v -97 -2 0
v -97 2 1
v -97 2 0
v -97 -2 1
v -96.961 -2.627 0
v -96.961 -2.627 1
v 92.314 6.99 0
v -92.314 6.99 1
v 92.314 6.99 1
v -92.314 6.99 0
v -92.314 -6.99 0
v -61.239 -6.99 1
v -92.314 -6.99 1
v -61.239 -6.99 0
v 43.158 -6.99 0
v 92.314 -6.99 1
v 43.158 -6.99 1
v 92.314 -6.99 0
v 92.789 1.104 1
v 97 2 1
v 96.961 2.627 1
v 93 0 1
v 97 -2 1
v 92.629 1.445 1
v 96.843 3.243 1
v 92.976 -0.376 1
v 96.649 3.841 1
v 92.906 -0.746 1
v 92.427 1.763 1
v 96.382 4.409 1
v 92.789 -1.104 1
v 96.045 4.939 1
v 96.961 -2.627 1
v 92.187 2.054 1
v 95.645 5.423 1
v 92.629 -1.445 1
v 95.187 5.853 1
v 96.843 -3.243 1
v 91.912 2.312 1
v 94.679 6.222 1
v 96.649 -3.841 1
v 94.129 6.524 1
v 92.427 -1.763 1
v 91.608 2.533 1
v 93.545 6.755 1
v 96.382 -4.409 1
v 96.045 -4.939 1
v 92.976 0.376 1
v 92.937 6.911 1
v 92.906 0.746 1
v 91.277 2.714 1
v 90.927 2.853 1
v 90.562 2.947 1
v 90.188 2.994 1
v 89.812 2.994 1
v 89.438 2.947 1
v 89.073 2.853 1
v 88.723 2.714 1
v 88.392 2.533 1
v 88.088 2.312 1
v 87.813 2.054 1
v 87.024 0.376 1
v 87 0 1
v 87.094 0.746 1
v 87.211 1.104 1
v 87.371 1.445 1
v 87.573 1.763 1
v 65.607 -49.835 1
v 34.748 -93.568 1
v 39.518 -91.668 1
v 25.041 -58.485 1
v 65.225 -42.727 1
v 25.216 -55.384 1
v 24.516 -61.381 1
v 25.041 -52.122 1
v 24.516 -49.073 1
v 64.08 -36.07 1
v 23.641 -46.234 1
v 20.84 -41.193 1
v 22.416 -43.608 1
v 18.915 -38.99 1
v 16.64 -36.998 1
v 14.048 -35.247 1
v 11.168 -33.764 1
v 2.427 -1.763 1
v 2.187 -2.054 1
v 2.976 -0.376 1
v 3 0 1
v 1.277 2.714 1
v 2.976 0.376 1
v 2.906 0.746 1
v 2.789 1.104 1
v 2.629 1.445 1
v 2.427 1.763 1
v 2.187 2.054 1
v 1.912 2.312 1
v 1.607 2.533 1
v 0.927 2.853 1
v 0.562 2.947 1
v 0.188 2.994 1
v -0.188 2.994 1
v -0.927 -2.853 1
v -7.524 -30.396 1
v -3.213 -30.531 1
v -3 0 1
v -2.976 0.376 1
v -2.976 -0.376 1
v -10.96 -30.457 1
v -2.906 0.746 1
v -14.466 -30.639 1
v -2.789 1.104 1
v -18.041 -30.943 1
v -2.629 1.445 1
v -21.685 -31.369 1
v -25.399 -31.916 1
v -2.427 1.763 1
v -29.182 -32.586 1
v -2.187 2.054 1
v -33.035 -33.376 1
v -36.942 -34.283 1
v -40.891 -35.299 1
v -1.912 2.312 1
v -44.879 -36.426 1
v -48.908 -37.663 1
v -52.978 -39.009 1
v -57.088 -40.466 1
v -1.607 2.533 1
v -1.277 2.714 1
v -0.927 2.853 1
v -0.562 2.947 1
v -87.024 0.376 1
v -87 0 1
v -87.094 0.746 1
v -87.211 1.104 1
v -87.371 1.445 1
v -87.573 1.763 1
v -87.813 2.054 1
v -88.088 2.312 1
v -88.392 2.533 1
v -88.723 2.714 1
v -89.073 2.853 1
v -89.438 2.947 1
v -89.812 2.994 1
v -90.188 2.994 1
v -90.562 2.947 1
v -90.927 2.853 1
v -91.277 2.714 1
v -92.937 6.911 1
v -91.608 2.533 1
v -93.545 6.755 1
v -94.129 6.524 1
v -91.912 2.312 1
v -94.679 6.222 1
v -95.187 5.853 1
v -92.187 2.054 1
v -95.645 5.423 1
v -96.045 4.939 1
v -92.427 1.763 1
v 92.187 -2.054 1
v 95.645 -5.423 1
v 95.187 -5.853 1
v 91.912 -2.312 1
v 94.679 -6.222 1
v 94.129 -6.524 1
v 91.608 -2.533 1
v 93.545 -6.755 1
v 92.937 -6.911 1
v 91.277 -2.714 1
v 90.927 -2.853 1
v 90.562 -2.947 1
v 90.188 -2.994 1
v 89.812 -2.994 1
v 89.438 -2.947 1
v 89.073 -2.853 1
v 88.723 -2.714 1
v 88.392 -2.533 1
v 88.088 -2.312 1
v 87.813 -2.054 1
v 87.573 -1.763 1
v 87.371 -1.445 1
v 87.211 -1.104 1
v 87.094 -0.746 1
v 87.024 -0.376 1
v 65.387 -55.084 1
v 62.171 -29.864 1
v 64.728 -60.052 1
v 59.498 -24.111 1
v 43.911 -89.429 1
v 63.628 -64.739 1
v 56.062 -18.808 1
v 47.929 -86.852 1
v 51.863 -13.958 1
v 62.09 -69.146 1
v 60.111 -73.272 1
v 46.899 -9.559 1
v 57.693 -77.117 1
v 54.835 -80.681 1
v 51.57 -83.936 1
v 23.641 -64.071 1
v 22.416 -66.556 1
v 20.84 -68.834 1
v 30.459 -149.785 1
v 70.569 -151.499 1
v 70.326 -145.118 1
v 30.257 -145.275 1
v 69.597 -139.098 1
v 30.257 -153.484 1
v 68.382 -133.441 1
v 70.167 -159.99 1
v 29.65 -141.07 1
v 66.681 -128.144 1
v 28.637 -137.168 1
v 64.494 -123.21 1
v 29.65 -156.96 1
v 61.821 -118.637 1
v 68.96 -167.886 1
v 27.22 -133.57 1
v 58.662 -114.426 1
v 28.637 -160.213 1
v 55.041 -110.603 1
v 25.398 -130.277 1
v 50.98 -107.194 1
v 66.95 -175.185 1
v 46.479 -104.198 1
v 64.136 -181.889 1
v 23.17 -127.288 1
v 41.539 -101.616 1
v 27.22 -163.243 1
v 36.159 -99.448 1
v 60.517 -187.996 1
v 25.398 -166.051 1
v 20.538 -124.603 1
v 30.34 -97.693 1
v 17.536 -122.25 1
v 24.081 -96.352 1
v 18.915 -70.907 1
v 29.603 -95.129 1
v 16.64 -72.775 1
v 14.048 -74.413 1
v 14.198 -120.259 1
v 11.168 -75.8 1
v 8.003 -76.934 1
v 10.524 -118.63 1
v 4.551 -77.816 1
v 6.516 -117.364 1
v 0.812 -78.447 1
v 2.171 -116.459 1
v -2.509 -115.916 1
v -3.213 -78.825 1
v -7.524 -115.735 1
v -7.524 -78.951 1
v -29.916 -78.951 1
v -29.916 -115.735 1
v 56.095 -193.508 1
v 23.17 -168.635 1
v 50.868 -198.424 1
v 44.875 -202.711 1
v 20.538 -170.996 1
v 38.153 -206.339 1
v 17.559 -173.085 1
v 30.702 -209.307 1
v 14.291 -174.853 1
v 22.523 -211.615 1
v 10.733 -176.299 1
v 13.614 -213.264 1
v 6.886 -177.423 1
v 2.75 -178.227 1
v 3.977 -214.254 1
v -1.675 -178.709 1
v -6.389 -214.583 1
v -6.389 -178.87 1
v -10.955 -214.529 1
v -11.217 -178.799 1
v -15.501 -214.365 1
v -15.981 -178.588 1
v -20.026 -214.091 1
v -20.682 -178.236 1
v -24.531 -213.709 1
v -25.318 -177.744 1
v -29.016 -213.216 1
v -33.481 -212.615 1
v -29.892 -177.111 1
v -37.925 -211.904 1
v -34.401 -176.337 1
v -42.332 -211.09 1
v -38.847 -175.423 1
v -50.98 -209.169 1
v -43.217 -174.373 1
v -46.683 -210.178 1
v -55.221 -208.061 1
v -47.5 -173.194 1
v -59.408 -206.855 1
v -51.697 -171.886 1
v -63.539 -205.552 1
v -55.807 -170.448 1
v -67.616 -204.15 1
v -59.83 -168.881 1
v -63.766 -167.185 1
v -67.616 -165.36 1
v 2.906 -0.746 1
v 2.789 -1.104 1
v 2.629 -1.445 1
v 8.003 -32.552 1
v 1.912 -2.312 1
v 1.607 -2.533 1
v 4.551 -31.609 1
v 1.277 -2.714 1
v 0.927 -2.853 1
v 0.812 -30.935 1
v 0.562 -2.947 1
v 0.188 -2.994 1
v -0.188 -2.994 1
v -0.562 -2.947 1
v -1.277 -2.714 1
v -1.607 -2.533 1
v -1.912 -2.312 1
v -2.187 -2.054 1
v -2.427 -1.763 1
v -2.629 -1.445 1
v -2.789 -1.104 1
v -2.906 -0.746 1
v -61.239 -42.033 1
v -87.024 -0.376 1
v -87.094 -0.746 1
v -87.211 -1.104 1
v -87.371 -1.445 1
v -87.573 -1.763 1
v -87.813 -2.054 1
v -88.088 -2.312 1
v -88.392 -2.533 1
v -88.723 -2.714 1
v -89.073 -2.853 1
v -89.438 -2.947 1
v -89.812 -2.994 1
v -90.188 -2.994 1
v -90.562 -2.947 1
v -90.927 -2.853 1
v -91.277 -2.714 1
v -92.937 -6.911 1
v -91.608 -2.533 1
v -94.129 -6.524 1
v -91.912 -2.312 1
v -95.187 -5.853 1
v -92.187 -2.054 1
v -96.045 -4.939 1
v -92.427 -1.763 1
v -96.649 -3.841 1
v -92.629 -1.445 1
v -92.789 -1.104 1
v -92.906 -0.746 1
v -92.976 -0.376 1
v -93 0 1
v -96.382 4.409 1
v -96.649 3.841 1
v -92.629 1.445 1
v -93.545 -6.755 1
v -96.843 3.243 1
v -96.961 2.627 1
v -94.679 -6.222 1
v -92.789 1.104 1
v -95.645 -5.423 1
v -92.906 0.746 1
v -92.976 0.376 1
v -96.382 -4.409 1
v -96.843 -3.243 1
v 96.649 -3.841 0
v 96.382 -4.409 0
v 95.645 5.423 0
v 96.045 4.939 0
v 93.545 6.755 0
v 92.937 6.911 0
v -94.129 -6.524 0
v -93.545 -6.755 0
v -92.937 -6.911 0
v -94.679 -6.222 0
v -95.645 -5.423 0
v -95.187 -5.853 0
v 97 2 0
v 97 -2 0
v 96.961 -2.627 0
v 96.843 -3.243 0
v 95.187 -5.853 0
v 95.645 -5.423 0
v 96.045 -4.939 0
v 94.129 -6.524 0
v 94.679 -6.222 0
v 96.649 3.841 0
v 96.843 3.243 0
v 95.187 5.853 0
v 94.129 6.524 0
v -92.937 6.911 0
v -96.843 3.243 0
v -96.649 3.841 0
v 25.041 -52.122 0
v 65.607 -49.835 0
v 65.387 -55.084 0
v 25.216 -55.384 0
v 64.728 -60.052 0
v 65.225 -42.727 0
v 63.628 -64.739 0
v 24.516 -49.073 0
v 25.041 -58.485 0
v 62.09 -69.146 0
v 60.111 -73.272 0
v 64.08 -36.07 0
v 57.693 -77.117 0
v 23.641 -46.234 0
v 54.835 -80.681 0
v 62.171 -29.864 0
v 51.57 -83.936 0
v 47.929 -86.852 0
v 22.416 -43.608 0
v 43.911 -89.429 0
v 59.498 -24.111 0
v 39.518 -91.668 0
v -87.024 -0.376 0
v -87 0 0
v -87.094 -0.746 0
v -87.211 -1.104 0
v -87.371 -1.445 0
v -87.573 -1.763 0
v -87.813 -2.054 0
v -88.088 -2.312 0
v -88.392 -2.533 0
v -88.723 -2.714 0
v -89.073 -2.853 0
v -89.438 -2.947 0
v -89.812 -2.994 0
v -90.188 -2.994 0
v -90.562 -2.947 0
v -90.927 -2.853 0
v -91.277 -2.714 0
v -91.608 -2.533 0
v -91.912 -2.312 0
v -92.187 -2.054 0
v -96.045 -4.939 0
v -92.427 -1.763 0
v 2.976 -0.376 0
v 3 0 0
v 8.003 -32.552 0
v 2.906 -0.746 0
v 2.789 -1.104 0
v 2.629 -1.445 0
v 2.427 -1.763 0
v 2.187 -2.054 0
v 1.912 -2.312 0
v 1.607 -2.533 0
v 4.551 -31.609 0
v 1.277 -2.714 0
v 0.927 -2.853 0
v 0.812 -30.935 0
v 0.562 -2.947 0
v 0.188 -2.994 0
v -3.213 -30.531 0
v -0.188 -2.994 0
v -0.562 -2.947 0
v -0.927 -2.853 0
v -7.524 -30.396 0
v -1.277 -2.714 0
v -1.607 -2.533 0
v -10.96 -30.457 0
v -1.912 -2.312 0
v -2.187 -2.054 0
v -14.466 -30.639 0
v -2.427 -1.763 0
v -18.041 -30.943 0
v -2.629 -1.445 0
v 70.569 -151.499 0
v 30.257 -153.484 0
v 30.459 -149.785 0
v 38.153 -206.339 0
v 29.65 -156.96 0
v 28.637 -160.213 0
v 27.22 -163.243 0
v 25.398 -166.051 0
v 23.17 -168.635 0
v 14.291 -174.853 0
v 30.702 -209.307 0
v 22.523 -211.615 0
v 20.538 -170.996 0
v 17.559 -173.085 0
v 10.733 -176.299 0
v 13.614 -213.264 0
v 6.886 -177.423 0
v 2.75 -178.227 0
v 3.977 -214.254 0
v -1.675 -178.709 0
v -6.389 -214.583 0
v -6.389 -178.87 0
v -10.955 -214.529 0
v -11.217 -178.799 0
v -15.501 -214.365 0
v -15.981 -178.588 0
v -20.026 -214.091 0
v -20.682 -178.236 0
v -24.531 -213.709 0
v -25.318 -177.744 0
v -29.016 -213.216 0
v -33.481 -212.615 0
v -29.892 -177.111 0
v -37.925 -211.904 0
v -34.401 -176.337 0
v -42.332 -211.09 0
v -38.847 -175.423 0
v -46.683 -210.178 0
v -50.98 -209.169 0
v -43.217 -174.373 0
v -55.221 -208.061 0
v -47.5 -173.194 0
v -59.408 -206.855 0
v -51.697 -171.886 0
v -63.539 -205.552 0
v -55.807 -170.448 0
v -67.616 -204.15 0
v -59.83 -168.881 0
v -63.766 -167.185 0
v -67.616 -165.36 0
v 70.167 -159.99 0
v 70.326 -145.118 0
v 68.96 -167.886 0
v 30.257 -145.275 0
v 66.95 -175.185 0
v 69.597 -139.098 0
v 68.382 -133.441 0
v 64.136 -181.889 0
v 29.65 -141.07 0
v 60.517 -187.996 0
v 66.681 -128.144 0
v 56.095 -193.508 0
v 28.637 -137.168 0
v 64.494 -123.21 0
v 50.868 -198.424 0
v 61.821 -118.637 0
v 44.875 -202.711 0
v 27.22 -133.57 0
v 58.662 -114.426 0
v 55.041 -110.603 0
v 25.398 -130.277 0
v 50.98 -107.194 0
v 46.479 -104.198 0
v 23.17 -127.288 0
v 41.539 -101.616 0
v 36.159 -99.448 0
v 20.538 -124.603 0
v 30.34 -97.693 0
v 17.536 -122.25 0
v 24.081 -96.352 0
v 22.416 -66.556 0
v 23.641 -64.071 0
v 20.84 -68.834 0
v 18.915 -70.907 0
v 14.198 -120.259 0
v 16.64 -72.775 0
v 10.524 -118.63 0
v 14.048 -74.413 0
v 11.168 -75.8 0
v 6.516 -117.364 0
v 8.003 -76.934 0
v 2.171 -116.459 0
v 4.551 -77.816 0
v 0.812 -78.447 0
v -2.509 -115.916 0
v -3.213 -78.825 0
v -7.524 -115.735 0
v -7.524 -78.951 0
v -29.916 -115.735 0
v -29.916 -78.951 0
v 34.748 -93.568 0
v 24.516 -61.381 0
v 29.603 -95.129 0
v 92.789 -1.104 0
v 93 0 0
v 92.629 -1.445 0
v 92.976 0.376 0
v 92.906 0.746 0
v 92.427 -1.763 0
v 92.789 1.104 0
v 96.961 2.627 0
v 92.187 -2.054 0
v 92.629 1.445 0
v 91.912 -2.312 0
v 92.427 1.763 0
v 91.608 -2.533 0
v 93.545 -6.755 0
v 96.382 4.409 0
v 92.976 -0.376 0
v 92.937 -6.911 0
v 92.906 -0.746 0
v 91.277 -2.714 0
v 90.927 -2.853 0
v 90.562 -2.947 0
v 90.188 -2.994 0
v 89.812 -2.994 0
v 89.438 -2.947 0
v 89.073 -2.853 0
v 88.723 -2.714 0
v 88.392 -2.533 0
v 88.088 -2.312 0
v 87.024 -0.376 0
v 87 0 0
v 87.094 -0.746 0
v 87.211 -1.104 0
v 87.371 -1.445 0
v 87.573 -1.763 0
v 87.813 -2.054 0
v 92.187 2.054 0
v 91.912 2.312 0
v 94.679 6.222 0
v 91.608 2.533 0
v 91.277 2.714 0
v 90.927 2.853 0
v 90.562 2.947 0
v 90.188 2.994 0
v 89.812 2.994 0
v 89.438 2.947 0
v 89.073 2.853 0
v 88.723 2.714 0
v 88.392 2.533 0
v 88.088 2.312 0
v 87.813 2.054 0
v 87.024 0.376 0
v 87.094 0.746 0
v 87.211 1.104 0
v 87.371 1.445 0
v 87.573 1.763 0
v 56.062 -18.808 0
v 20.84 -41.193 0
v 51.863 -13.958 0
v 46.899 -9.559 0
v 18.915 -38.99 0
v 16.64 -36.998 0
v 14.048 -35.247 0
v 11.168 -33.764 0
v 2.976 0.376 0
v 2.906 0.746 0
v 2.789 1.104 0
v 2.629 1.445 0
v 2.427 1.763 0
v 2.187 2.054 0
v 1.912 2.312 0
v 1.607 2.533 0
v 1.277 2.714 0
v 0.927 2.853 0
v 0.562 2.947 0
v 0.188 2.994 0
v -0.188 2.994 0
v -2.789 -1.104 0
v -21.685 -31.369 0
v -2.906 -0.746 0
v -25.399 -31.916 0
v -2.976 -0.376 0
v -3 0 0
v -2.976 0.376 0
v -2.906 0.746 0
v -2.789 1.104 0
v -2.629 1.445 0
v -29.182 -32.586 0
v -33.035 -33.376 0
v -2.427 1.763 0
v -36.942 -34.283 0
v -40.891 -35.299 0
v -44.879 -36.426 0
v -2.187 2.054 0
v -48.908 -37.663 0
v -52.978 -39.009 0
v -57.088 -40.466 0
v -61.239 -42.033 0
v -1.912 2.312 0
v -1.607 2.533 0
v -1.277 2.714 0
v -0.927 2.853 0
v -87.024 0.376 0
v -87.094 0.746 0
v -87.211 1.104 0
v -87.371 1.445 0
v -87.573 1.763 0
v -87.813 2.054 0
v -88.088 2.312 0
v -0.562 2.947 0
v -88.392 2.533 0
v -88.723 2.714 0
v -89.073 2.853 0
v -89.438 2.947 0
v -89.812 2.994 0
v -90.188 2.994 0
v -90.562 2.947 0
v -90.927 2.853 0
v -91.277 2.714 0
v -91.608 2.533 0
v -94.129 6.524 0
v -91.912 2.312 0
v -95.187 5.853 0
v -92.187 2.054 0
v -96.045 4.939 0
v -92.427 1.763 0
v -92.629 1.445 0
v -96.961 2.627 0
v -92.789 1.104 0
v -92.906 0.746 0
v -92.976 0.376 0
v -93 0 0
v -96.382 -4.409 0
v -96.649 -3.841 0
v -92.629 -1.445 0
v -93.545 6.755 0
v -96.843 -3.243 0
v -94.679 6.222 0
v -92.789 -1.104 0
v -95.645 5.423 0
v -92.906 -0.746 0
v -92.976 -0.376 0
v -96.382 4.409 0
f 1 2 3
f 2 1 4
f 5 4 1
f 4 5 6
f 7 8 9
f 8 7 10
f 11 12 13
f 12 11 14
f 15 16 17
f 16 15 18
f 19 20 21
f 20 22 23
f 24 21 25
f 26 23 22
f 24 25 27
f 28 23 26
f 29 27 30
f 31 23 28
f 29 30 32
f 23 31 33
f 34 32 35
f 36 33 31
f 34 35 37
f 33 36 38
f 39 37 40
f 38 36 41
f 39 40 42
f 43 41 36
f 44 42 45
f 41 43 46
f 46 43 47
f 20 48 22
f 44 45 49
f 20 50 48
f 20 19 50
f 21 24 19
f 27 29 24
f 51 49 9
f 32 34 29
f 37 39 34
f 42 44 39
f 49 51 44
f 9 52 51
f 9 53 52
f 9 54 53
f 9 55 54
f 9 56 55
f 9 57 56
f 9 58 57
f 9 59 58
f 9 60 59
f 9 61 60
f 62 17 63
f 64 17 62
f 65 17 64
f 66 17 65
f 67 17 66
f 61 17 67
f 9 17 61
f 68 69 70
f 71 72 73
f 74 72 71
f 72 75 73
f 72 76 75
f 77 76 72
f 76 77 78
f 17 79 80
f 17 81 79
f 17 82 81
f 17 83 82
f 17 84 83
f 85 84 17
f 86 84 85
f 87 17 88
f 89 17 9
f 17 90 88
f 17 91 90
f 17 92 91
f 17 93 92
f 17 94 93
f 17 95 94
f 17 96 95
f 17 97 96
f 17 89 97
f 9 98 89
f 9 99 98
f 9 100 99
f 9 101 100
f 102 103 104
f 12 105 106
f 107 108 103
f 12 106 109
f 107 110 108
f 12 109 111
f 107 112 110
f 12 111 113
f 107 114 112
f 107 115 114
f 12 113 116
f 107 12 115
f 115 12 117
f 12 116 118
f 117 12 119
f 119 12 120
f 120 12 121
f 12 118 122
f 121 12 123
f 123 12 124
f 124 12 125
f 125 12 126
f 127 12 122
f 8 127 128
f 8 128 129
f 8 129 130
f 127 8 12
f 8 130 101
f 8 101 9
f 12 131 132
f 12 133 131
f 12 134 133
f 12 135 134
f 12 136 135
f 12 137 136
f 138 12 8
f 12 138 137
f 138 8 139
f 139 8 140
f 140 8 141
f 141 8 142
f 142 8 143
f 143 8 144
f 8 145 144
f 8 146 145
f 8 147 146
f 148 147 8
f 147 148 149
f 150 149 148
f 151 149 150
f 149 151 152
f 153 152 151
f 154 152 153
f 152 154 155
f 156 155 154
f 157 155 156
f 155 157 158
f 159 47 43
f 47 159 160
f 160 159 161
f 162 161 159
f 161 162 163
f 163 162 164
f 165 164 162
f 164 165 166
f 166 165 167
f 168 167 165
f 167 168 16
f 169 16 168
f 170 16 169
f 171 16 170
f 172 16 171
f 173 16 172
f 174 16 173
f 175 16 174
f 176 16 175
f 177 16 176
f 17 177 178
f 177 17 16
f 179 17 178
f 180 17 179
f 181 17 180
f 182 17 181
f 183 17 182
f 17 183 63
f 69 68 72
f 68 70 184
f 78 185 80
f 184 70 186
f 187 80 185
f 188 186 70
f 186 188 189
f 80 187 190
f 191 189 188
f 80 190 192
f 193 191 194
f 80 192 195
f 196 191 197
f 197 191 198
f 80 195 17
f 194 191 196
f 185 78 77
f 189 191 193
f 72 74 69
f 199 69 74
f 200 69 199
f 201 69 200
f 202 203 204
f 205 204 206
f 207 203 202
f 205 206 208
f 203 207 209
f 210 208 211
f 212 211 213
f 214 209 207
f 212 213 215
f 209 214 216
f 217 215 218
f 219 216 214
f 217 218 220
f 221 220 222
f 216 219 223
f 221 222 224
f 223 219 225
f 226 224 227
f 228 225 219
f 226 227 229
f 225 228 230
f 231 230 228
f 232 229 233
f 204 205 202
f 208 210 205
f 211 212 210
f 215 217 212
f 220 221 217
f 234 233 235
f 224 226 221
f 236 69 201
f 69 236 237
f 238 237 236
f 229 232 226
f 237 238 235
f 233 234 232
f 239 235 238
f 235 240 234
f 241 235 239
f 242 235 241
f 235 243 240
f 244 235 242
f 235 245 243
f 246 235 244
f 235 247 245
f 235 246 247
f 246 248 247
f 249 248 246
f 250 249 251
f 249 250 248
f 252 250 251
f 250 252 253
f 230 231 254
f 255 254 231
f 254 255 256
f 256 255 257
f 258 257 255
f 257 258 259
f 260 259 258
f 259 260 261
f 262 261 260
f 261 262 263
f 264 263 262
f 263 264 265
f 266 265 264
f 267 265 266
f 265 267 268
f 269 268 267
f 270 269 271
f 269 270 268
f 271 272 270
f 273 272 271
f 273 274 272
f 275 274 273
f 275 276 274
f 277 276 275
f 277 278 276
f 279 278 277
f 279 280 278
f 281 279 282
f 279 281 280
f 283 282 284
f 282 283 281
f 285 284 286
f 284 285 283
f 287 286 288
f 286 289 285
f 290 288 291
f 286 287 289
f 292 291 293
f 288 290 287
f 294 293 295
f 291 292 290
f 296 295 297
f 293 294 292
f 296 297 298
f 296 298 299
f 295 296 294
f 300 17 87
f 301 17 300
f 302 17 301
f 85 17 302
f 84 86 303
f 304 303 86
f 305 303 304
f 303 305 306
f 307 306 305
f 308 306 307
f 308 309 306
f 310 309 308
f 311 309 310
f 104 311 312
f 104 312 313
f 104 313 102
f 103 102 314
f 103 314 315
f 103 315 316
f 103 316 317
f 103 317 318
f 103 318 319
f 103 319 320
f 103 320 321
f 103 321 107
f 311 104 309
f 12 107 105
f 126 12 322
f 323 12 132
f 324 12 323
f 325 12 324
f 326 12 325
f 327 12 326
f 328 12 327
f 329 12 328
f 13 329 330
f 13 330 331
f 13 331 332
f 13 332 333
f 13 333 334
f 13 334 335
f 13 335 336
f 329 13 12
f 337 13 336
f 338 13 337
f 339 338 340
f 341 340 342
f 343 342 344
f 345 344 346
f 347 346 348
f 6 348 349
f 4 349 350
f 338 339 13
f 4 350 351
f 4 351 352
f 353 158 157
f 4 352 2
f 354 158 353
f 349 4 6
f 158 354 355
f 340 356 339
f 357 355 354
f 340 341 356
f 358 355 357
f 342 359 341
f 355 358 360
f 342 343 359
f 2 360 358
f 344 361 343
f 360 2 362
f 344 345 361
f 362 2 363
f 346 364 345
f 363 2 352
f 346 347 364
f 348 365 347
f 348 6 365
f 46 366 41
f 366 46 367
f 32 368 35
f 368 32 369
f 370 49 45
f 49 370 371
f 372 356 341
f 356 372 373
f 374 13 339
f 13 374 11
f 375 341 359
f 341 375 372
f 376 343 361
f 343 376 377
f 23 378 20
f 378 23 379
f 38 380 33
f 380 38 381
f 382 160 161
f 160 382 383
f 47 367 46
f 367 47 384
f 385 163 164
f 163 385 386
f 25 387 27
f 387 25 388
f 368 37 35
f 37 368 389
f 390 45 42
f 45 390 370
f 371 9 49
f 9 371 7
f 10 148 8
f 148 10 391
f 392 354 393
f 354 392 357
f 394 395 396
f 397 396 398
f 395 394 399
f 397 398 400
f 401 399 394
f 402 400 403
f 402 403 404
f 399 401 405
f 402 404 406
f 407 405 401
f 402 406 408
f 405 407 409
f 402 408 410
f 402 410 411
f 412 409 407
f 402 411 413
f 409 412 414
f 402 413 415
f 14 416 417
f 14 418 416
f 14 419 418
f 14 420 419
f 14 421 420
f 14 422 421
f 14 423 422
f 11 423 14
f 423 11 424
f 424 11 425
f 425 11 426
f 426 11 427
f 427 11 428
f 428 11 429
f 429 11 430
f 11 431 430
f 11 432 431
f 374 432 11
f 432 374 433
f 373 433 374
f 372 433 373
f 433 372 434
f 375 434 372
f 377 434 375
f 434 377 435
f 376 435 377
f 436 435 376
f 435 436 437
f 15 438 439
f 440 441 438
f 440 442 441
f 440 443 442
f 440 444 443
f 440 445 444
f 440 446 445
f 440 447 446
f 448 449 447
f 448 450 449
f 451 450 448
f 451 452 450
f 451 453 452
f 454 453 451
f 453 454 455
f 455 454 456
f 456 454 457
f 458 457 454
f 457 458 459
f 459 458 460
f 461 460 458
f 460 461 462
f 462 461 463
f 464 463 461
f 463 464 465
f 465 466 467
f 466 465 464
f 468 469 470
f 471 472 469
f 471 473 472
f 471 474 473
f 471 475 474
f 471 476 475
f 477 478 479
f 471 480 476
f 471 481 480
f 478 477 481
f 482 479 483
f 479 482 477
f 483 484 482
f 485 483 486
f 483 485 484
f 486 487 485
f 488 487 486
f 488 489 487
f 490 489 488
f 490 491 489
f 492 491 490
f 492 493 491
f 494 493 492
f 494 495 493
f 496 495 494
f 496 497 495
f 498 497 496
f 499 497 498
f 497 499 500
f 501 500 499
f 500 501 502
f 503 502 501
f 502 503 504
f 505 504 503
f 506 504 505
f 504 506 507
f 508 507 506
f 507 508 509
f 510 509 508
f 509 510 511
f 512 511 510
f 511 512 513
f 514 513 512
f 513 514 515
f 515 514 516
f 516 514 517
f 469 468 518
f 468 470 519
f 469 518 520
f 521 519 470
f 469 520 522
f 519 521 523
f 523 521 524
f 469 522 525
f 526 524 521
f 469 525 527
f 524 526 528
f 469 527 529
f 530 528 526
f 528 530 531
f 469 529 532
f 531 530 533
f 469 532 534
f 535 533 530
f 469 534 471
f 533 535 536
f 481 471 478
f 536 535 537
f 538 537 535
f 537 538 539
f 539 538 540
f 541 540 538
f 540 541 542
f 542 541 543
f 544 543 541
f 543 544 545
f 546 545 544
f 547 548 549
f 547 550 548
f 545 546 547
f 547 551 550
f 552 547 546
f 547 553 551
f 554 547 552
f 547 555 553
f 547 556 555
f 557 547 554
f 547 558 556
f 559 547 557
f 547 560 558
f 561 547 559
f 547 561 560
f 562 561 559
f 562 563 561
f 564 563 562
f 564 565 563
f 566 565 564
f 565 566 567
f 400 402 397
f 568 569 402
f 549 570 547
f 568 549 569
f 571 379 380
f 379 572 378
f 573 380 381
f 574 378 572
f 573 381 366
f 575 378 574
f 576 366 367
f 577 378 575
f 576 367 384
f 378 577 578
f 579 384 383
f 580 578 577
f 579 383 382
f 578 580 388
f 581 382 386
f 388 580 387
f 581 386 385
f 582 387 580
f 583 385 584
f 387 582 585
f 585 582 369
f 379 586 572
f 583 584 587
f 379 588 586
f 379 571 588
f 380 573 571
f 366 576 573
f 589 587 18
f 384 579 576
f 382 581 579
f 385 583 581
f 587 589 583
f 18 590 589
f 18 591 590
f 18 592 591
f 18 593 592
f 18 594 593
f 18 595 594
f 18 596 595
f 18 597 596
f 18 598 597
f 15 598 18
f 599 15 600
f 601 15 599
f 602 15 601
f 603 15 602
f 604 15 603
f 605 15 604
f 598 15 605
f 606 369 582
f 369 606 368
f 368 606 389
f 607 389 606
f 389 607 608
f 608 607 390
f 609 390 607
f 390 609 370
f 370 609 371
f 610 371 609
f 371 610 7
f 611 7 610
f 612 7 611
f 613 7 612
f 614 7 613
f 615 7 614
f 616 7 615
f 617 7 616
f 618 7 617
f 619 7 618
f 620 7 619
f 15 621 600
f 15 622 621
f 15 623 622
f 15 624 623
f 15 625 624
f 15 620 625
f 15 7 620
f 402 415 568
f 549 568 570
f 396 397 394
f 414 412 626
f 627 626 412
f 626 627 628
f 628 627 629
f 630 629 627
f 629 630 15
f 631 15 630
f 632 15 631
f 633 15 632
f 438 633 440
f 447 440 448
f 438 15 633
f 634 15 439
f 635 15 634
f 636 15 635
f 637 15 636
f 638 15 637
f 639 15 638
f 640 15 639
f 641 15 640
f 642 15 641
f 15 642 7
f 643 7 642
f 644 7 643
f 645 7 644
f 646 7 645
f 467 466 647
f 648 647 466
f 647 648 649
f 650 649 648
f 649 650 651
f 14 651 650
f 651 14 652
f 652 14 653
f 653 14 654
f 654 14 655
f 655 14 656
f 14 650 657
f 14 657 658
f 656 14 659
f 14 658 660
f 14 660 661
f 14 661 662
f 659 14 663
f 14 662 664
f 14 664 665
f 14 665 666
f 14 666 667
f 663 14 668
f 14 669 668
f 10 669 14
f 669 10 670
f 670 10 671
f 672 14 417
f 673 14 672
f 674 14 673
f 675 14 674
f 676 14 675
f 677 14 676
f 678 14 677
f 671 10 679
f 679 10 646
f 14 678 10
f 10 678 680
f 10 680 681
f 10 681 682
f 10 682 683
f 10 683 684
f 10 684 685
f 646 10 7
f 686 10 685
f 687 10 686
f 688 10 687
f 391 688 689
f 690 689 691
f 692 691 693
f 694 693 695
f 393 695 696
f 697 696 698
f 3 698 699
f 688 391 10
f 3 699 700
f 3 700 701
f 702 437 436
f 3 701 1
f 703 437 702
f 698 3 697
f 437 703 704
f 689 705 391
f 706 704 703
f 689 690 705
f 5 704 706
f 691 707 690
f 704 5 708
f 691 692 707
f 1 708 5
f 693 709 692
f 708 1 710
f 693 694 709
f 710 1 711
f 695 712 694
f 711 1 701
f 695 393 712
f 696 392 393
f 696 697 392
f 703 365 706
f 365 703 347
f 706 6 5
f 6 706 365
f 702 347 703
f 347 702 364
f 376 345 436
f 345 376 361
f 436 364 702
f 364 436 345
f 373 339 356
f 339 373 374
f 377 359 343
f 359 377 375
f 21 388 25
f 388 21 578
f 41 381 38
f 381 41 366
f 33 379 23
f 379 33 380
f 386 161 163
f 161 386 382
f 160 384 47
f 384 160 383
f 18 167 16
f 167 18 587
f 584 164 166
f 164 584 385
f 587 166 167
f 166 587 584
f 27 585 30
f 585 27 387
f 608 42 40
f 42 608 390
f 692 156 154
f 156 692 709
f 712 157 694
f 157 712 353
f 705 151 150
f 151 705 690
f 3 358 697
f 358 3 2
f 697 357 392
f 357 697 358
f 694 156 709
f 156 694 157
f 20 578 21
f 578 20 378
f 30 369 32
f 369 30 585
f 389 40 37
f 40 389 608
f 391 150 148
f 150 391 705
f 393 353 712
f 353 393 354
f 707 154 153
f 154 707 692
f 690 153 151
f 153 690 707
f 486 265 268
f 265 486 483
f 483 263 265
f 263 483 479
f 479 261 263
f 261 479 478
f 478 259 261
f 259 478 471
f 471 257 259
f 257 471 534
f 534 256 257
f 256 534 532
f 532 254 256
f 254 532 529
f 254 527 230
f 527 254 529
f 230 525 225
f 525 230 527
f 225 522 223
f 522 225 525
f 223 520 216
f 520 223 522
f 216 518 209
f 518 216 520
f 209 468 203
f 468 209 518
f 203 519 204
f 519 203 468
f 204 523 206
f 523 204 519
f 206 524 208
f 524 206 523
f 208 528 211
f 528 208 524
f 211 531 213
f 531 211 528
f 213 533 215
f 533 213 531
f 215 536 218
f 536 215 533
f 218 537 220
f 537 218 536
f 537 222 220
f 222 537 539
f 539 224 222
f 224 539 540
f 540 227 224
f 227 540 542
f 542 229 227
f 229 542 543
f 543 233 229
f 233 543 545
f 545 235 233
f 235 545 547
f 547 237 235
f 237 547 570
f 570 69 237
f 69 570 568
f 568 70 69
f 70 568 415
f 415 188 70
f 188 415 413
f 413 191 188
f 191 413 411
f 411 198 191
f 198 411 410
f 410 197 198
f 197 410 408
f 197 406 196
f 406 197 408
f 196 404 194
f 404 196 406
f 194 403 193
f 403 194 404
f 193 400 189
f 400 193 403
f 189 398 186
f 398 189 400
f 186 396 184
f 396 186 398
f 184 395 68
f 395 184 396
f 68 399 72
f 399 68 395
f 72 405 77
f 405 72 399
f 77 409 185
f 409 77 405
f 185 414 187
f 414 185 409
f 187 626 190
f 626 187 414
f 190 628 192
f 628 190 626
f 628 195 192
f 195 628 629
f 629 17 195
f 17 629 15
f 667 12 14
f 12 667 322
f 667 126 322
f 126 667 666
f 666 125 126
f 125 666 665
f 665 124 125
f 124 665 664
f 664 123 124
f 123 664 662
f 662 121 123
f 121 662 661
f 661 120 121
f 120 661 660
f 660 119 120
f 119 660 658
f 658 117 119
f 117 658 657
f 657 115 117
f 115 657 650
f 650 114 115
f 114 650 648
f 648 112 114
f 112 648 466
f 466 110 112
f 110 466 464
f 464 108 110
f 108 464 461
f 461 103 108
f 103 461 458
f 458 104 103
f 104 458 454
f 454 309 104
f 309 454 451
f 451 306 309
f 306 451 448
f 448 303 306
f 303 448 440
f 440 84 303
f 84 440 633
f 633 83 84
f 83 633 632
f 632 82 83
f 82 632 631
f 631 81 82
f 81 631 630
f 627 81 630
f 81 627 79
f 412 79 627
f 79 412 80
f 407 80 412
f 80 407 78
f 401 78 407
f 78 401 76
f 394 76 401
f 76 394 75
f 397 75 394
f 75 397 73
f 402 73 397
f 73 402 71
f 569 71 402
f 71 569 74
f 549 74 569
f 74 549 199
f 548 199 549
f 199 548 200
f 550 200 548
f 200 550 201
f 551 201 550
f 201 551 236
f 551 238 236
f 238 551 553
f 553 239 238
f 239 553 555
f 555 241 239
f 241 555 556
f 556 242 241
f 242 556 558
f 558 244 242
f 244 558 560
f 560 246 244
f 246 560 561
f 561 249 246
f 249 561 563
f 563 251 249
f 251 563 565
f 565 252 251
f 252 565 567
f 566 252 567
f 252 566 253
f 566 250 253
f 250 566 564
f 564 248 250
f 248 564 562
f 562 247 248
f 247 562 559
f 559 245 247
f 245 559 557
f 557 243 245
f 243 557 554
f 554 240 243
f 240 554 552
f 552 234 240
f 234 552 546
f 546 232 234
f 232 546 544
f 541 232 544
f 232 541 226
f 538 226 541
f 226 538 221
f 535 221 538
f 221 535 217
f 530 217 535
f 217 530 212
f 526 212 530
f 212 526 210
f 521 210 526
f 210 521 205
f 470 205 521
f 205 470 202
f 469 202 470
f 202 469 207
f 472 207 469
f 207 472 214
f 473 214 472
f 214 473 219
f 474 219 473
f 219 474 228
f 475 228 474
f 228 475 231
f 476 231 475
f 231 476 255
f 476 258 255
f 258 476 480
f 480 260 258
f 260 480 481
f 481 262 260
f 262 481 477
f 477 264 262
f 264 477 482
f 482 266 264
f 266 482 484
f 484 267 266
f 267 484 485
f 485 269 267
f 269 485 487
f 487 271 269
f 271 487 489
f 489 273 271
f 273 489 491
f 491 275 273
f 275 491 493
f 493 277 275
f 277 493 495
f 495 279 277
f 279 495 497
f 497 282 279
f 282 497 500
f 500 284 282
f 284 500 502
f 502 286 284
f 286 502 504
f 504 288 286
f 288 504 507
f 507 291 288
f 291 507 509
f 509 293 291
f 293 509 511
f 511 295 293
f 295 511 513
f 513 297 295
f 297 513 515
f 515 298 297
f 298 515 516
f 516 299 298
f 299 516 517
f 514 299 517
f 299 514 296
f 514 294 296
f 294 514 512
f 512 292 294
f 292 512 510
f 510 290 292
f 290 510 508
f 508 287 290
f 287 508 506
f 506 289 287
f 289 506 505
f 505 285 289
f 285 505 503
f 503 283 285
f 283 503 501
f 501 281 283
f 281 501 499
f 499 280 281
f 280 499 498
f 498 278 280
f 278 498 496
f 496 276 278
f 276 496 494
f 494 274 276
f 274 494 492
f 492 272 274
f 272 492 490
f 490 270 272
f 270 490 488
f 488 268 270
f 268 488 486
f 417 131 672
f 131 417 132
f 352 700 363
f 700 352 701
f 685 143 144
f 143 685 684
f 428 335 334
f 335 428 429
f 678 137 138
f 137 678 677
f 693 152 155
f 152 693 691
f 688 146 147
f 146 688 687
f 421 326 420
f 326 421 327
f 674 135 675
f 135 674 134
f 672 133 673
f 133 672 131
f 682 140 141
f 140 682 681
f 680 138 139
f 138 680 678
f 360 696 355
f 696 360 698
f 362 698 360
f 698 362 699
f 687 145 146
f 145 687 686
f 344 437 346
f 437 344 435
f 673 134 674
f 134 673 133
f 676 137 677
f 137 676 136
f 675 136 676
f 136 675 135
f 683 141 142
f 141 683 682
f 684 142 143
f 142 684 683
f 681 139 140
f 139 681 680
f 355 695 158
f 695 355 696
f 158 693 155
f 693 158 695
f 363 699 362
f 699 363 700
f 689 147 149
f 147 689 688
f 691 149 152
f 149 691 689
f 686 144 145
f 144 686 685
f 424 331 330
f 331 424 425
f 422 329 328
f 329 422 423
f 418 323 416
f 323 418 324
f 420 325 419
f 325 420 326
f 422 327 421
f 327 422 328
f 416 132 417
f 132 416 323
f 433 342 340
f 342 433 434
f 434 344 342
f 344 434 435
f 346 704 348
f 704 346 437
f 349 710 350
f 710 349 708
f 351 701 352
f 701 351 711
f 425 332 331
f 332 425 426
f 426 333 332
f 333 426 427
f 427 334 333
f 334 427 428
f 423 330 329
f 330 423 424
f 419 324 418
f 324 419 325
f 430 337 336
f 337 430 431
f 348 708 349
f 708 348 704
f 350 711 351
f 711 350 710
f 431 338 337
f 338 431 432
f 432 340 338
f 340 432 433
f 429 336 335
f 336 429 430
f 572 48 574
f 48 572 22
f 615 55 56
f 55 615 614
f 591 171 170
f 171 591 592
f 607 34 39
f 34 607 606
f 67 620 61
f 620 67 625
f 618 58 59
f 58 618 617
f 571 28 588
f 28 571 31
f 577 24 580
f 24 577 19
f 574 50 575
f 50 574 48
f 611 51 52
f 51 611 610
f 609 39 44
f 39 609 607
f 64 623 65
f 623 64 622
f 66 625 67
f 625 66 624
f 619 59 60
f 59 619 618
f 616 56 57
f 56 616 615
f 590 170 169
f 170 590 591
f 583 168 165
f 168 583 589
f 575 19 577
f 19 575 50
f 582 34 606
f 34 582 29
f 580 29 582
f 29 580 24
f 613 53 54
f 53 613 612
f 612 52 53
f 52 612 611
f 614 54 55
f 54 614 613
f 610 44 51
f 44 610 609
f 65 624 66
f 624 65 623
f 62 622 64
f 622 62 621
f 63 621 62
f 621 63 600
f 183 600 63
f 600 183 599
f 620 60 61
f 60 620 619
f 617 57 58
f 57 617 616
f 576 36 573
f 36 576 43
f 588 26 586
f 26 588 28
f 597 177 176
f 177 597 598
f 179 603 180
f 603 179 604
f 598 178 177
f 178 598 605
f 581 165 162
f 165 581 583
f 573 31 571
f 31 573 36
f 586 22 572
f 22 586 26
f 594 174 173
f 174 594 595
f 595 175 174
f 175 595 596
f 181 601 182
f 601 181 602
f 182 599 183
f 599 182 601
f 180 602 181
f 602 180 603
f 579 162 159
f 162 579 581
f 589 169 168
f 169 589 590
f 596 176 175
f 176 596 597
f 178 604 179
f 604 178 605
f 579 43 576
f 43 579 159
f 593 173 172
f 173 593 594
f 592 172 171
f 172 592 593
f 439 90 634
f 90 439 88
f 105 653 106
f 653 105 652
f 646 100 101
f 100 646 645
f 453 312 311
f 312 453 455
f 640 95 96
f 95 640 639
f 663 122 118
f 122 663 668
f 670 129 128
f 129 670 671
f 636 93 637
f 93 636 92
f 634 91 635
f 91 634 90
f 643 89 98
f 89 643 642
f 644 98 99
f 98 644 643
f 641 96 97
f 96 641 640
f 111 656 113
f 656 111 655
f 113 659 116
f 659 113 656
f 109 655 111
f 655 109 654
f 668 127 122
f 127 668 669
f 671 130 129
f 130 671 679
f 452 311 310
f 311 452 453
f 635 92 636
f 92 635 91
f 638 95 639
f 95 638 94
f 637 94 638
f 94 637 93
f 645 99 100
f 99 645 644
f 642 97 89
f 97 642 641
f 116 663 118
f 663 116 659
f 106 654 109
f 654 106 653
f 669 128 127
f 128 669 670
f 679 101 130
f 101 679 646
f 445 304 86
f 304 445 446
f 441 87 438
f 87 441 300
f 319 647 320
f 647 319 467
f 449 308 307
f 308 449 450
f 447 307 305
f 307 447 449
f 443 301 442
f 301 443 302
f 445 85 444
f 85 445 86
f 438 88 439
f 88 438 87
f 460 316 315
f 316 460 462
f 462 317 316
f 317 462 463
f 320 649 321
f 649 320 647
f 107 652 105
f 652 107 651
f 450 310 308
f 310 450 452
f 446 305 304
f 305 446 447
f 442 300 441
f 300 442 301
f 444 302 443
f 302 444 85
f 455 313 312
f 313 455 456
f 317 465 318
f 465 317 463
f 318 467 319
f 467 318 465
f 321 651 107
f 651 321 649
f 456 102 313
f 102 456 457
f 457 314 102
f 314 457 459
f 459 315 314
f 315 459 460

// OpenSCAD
$fn = 50;


difference() {
	union() {
		translate(v = [0, 0, 0]) {
			rotate(a = [0, 0, 0]) {
				hull() {
					translate(v = [-92.0000000000, 2.0000000000, 0]) {
						rotate(a = [0, 0, 0]) {
							translate(v = [0, 0, 0]) {
								rotate(a = [0, 0, 0]) {
									cylinder(h = 1, r = 5);
								}
							}
						}
					}
					translate(v = [92.0000000000, 2.0000000000, 0]) {
						rotate(a = [0, 0, 0]) {
							translate(v = [0, 0, 0]) {
								rotate(a = [0, 0, 0]) {
									cylinder(h = 1, r = 5);
								}
							}
						}
					}
					translate(v = [-92.0000000000, -2.0000000000, 0]) {
						rotate(a = [0, 0, 0]) {
							translate(v = [0, 0, 0]) {
								rotate(a = [0, 0, 0]) {
									cylinder(h = 1, r = 5);
								}
							}
						}
					}
					translate(v = [92.0000000000, -2.0000000000, 0]) {
						rotate(a = [0, 0, 0]) {
							translate(v = [0, 0, 0]) {
								rotate(a = [0, 0, 0]) {
									cylinder(h = 1, r = 5);
								}
							}
						}
					}
				}
			}
		}
		translate(v = [0, 0, 0]) {
			rotate(a = [0, 0, 0]) {
				linear_extrude(height = 1) {
					text(font = "DejaVu Sans Mono:style=Bold", halign = "center", size = 209.0000000000, text = "3", valign = "top");
				}
			}
		}
	}
	union() {
		translate(v = [-90.0000000000, 0.0000000000, -125.0000000000]) {
			rotate(a = [0, 0, 0]) {
				cylinder(h = 250, r = 3.0000000000);
			}
		}
		translate(v = [90.0000000000, 0.0000000000, -125.0000000000]) {
			rotate(a = [0, 0, 0]) {
				cylinder(h = 250, r = 3.0000000000);
			}
		}
		translate(v = [90.0000000000, 0.0000000000, -125.0000000000]) {
			rotate(a = [0, 0, 0]) {
				cylinder(h = 250, r = 3.0000000000);
			}
		}
		translate(v = [0, 0, -125.0000000000]) {
			rotate(a = [0, 0, 0]) {
				cylinder(h = 250, r = 3.0000000000);
			}
		}
	}
}
